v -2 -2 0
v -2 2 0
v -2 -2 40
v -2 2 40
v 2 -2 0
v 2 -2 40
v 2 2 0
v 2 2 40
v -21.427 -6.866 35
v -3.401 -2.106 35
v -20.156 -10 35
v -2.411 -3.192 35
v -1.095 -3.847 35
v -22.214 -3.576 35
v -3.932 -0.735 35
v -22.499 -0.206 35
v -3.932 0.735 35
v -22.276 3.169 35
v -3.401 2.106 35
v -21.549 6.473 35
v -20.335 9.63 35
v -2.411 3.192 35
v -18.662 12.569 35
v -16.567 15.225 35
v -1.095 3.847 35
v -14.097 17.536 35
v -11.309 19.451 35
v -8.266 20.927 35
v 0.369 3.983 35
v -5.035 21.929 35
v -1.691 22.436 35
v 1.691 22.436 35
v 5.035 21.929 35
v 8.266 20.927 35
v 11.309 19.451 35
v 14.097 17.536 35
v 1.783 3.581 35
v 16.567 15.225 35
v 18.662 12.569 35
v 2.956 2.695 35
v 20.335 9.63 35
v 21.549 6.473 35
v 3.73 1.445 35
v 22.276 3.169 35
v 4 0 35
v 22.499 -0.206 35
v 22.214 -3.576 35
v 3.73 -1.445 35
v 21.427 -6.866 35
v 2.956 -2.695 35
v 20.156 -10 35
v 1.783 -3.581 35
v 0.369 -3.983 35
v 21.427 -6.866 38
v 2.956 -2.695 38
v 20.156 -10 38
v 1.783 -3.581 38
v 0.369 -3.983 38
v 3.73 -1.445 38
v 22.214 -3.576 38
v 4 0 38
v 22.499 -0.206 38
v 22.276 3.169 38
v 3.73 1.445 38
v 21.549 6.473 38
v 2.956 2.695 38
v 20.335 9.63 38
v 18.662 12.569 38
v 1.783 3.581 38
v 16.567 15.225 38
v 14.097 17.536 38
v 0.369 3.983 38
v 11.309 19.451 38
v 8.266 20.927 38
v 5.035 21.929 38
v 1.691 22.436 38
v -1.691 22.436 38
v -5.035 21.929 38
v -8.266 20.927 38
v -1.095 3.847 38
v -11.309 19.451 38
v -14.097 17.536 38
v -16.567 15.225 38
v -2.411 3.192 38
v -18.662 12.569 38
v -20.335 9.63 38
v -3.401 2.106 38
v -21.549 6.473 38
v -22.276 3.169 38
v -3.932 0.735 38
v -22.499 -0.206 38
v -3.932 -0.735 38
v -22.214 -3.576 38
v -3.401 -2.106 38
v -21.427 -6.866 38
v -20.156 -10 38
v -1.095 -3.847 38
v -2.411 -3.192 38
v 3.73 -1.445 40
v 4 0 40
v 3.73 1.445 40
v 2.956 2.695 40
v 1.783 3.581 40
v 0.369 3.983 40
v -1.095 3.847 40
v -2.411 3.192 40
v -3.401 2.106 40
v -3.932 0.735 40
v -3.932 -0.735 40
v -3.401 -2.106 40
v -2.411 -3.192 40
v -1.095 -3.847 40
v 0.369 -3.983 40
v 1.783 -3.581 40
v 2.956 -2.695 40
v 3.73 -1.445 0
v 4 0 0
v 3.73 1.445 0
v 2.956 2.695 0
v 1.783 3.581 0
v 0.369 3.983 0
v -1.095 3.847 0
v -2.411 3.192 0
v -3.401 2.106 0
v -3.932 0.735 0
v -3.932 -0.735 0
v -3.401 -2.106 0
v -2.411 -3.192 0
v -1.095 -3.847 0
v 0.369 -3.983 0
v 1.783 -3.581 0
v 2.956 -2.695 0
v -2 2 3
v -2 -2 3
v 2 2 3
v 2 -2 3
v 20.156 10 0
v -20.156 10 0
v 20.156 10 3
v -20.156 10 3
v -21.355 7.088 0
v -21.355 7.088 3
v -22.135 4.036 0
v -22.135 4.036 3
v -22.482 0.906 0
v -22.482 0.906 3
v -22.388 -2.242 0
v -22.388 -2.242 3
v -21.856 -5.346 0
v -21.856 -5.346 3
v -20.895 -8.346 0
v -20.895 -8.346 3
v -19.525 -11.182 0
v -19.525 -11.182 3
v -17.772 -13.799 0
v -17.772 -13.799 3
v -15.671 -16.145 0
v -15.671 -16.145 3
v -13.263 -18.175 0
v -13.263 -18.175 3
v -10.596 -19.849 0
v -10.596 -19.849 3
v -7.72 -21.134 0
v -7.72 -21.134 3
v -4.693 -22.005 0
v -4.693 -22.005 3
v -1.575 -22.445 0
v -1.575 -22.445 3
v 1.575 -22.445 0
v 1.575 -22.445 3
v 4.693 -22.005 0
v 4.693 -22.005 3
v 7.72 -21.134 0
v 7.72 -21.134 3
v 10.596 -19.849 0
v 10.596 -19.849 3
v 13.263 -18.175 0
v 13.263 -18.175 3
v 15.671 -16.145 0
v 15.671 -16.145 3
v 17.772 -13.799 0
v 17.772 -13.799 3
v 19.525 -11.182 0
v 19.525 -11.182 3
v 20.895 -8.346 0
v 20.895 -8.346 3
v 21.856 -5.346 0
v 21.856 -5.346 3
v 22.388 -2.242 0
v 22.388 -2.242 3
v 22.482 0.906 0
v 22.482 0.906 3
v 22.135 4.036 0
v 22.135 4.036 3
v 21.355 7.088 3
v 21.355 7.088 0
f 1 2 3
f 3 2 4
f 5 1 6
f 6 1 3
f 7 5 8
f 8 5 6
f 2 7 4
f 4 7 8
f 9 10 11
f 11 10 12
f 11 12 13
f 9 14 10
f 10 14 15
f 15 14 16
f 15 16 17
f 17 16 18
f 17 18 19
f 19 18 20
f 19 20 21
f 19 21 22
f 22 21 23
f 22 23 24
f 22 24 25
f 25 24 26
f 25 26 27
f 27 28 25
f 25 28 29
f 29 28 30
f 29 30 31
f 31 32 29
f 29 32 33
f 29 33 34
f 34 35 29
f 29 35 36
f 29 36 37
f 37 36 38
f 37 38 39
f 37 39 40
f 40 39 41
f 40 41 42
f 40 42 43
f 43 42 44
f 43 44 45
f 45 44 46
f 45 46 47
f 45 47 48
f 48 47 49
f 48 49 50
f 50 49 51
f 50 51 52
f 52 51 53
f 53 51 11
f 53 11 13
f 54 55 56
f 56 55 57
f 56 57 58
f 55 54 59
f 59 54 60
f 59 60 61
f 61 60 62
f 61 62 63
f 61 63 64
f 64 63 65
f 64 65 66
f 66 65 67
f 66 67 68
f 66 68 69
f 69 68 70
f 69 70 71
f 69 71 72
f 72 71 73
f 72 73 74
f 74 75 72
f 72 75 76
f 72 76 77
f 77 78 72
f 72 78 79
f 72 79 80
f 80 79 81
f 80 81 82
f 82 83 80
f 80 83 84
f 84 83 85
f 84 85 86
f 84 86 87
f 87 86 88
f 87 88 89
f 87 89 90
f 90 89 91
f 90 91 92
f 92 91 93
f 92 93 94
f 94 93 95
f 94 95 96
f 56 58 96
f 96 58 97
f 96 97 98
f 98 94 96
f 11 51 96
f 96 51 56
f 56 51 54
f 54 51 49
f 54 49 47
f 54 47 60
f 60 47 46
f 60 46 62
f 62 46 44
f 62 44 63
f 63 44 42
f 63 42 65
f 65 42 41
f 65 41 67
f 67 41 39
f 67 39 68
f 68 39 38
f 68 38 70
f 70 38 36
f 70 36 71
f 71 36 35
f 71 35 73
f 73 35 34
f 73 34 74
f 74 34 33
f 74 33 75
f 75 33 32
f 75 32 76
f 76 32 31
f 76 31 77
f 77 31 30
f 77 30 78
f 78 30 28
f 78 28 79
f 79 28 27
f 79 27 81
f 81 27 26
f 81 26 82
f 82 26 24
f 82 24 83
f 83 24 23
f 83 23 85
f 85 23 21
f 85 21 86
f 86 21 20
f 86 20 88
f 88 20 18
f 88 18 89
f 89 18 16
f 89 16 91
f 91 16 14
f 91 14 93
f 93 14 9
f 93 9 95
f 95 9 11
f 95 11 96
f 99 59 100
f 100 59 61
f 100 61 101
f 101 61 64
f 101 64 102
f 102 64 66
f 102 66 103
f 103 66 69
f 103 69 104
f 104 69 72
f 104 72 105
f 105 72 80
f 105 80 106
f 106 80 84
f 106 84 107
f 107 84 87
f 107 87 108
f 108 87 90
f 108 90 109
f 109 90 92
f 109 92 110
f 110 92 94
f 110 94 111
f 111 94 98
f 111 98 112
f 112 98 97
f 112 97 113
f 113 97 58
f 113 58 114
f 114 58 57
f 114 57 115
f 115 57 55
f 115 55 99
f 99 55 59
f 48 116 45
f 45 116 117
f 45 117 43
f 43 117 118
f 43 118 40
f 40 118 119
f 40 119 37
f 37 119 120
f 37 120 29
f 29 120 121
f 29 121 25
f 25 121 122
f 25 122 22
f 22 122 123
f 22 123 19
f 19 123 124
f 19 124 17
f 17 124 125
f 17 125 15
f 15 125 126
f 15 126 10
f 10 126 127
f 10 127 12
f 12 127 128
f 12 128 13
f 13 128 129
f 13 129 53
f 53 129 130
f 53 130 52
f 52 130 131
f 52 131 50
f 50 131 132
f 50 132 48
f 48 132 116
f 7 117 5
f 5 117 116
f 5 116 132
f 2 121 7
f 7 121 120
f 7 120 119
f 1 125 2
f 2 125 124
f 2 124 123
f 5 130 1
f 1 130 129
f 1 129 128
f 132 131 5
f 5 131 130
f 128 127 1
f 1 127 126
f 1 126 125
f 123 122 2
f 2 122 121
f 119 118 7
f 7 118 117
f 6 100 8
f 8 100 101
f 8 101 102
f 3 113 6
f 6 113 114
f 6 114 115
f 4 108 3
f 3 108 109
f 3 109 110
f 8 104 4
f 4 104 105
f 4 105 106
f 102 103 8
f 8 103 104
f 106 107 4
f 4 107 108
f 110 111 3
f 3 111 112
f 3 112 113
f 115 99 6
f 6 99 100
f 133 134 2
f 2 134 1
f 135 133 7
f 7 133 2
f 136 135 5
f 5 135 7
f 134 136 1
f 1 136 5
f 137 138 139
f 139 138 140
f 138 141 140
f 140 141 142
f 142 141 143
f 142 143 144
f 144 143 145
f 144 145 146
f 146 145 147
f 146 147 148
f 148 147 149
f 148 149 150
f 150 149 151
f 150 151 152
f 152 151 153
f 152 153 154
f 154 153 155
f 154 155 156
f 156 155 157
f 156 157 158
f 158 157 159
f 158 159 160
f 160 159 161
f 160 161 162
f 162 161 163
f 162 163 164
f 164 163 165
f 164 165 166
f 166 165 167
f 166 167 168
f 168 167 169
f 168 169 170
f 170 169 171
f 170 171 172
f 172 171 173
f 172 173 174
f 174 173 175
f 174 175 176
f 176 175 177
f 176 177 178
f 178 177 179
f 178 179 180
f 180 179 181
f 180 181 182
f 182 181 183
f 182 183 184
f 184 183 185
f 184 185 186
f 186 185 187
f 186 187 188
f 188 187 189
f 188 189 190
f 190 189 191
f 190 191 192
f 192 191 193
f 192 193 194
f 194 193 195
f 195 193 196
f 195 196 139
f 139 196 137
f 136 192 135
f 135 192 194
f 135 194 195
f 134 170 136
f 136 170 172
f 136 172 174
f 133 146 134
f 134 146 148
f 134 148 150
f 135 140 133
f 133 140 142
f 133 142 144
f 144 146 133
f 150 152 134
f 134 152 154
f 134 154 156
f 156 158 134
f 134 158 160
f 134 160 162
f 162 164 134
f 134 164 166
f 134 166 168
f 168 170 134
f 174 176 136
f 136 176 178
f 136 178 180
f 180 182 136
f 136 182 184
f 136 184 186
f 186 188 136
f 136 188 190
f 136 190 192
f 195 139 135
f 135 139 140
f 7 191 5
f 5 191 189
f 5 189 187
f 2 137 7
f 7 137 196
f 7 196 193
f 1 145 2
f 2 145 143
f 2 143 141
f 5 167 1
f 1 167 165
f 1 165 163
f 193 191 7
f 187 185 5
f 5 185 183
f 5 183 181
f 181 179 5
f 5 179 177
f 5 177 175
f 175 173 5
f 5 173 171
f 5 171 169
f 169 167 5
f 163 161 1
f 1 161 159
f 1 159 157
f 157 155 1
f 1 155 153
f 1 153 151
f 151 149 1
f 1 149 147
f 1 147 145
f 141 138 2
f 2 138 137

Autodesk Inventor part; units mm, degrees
ref_plane "YZ Plane" through (0, 0, 0) normal (1, 0, 0) x (0, 1, 0)
ref_plane "XZ Plane" through (0, 0, 0) normal (0, 1, 0) x (-1, 0, 0)
sketch "Sketch1" plane through (0, 0, 0) normal (0, 0, 1) x (1, 0, 0)
  circle A0 centre (0, 0) radius 4
extrude "Extrusion1" add sketch "Sketch1" along normal blind 40
ref_plane "Work Plane5" through (0, 0, 35) normal (0, 0, 1) x (1, 0, 0)
sketch "Sketch5" plane through (0, 0, 35) normal (0, 0, 1) x (1, 0, 0)
  arc A0 (20.1556, -10) -> (-20.1556, -10) centre (0, 0) ccw
  line L0 (-20.1556, -10) -> (20.1556, -10)
  dimension "d19" = 45
extrude "Extrusion4" add sketch "Sketch5" along normal blind 3
sketch "Sketch6" plane through (0, 0, 0) normal (0, 0, -1) x (-1, 0, 0)
  arc A0 (-20.1556, 10) -> (20.1556, 10) centre (0, 0) ccw
  line L0 (20.1556, 10) -> (-20.1556, 10)
  dimension "d20" = 45
extrude "Extrusion5" add sketch "Sketch6" against normal blind 3 separate body
sketch "Sketch3" plane through (0, 0, 0) normal (0, 0, -1) x (-1, 0, 0)
  line L0 (2, 2) -> (-2, 2)
  line L1 (-2, 2) -> (-2, -2)
  line L2 (-2, -2) -> (2, -2)
  line L3 (2, -2) -> (2, 2)
  line L4 (2, 2) -> (-2, -2) construction
  line L5 (-2, 2) -> (2, -2) construction
  point P0 (0, 0)
  dimension "d5" = 4
  dimension "d6" = 4
extrude "Extrusion3" cut sketch "Sketch3" against normal blind 40 and the other way blind 5 bodies 1 2
properties part number "DispenserAuger"
